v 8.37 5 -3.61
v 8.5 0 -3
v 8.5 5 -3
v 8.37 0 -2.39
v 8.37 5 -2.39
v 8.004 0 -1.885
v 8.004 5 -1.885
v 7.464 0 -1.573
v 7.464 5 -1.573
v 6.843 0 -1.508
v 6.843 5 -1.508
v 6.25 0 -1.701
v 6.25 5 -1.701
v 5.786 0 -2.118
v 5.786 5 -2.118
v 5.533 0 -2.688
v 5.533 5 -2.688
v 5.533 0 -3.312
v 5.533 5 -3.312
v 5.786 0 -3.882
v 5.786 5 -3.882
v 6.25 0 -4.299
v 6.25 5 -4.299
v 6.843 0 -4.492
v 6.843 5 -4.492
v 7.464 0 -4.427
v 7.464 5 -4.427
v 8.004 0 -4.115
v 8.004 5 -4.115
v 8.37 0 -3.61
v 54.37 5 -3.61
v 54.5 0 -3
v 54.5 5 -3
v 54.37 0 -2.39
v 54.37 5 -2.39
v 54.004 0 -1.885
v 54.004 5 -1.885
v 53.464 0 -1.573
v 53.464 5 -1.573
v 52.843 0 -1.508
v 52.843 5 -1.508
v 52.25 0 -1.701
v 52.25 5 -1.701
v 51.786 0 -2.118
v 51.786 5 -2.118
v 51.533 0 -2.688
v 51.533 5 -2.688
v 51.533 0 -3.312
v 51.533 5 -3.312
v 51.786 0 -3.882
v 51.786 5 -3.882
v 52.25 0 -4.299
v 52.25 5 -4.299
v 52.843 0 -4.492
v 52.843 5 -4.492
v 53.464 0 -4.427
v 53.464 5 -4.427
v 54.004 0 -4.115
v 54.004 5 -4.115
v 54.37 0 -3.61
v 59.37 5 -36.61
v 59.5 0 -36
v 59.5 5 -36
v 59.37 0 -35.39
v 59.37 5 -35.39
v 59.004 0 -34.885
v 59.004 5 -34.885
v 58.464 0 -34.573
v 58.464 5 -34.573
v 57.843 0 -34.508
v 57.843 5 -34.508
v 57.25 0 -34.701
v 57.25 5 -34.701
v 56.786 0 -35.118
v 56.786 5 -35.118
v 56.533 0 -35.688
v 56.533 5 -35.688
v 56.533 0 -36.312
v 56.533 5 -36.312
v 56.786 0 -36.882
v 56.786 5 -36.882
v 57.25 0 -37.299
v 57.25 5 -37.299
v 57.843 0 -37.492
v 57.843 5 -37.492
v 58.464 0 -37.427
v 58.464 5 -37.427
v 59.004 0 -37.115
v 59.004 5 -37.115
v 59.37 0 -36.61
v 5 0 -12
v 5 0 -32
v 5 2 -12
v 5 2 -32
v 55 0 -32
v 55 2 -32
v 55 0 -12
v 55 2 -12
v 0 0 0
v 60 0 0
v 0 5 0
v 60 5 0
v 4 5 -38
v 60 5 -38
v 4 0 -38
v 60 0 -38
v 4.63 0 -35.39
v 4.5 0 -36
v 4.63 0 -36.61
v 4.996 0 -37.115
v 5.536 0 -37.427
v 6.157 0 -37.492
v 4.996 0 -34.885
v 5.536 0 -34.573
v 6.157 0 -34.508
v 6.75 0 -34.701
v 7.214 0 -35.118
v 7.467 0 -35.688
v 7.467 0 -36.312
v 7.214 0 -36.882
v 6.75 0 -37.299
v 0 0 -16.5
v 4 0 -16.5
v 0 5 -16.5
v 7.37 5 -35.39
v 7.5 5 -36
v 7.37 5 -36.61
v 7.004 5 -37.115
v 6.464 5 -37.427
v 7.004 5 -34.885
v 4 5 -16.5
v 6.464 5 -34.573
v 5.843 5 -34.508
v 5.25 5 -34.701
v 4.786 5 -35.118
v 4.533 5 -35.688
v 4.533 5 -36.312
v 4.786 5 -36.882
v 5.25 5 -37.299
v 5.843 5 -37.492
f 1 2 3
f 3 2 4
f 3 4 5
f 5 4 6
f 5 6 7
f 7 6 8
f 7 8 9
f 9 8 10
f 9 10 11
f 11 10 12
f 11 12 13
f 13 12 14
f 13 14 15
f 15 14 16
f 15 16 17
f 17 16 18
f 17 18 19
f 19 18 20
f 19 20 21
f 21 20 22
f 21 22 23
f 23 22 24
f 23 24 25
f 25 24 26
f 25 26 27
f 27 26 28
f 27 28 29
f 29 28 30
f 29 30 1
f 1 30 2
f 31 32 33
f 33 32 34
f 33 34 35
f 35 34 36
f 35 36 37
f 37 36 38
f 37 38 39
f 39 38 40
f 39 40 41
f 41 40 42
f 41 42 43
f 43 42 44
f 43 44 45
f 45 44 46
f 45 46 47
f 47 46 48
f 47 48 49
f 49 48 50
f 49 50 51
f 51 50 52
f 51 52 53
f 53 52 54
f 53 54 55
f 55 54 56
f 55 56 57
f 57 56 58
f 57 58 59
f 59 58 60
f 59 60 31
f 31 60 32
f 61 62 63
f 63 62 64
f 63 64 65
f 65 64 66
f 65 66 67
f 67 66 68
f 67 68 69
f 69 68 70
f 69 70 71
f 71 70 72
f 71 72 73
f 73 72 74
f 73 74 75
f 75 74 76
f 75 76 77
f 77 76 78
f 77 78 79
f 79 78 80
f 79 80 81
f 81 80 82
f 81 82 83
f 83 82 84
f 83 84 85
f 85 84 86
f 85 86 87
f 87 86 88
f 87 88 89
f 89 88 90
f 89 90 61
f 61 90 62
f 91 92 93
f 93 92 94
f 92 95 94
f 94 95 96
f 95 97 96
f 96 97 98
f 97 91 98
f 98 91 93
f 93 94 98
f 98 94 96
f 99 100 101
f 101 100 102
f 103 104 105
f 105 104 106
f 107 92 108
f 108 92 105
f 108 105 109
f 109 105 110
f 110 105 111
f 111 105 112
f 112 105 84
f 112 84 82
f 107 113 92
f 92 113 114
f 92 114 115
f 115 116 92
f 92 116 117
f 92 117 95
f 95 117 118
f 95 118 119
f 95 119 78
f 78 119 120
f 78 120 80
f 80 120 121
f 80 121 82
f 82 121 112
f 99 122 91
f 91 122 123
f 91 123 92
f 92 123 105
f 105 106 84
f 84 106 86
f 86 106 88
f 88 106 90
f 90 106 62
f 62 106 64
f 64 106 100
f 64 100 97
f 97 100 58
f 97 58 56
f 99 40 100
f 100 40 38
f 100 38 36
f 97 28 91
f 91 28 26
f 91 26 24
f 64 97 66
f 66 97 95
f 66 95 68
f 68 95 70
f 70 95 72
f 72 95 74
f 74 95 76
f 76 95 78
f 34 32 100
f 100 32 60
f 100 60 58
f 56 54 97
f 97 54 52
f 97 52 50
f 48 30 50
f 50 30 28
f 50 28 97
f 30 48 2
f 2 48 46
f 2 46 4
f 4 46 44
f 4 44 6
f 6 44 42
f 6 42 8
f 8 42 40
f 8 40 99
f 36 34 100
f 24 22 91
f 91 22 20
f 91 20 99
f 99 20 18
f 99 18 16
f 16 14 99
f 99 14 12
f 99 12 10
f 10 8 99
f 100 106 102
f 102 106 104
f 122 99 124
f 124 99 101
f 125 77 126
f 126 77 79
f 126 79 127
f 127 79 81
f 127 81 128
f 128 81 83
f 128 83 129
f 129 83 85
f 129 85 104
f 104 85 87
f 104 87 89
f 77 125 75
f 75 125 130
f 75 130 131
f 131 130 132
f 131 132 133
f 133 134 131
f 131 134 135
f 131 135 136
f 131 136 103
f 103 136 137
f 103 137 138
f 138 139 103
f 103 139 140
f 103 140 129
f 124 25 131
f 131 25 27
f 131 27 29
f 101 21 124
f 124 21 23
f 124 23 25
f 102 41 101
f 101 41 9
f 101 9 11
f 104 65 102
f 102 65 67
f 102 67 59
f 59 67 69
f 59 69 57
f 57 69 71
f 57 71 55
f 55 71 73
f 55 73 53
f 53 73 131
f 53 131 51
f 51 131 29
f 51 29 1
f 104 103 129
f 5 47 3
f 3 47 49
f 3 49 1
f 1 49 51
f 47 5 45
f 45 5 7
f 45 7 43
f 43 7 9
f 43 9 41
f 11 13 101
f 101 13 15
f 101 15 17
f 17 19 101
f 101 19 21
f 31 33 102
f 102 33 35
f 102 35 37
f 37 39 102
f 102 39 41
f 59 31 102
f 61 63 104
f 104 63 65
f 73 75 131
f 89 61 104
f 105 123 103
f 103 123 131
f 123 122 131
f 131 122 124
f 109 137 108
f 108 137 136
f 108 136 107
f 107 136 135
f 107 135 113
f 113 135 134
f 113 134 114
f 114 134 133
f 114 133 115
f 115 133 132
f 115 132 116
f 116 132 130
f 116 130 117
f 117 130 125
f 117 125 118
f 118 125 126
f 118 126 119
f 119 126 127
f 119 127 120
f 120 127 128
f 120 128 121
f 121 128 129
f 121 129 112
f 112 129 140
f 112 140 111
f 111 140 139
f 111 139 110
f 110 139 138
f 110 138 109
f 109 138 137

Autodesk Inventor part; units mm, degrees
ref_plane "YZ Plane" through (0, 0, 0) normal (1, 0, 0) x (0, 1, 0)
ref_plane "XZ Plane" through (0, 0, 0) normal (0, 1, 0) x (-1, 0, 0)
ref_plane "XY Plane" through (0, 0, 0) normal (0, 0, 1) x (1, 0, 0)
sketch "Sketch2" plane through (0, 0, 0) normal (0, 1, 0) x (-1, 0, 0)
  line L0 (0, 0) -> (-60, 0)
  line L1 (-60, 0) -> (-60, -38)
  line L2 (-60, -38) -> (0, -38)
  line L3 (0, -38) -> (0, 0)
  dimension "d2" = 60
  dimension "d3" = 38
extrude "Extrusion1" add sketch "Sketch2" along normal blind 5
sketch "Sketch3" plane through (0, 0, 0) normal (0, -1, 0) x (1, 0, 0)
  line L0 (55, -32) -> (5, -32)
  line L1 (5, -32) -> (5, -12)
  line L2 (5, -12) -> (55, -12)
  line L3 (55, -12) -> (55, -32)
  line L4 (60, -38) -> (0, -38) projected
  line L5 (60, 0) -> (60, -38) projected
  point P0 (0, 0)
  dimension "d6" = 50
  dimension "d7" = 20
  dimension "d8" = 6
  dimension "d9" = 5
extrude "Extrusion2" cut sketch "Sketch3" against normal blind 2
sketch "Sketch5" plane through (0, 0, 0) normal (0, -1, 0) x (1, 0, 0)
  circle A0 centre (58, -36) radius 1.5
  line L0 (60, 0) -> (60, -38) projected
  line L1 (60, -38) -> (0, -38) projected
  line L2 (0, -38) -> (0, 0) projected
  dimension "d14" = 3
  dimension "d15" = 2
  dimension "d16" = 2
extrude "Extrusion3" cut sketch "Sketch5" against normal blind 5
sketch "Sketch6" plane through (0, 0, 0) normal (0, -1, 0) x (1, 0, 0)
  circle A0 centre (53, -3) radius 1.5
  line L0 (60, 0) -> (60, -38) projected
  line L1 (0, 0) -> (60, 0) projected
  circle A1 centre (7, -3) radius 1.5
  line L2 (0, -38) -> (0, 0) projected
  dimension "d22" = 3
  dimension "d23" = 7
  dimension "d24" = 3
  dimension "d25" = 3
  dimension "d26" = 7
  dimension "d27" = 3
extrude "Extrusion4" cut sketch "Sketch6" against normal blind 5
sketch "Sketch7" plane through (0, 5, 0) normal (0, 1, 0) x (1, 0, 0)
  line L0 (0, 38) -> (0, 0) projected
  line L1 (0, 38) -> (4, 38)
  line L2 (4, 38) -> (4, 16.5)
  line L3 (4, 16.5) -> (0, 16.5)
  line L4 (0, 16.5) -> (0, 38)
  dimension "d36" = 4
  dimension "d37" = 21.5
extrude "Extrusion5" cut sketch "Sketch7" against normal blind 10
sketch "Sketch8" plane through (0, 5, 0) normal (0, 1, 0) x (1, 0, 0)
  circle A0 centre (6, 36) radius 1.5
  line L0 (4, 38) -> (4, 16.5) projected
  line L1 (60, 38) -> (4, 38) projected
  point P0 (0, 0)
  dimension "d40" = 3
  dimension "d41" = 2
  dimension "d42" = 2
extrude "Extrusion6" cut sketch "Sketch8" against normal blind 10
properties part number "PiBed"
